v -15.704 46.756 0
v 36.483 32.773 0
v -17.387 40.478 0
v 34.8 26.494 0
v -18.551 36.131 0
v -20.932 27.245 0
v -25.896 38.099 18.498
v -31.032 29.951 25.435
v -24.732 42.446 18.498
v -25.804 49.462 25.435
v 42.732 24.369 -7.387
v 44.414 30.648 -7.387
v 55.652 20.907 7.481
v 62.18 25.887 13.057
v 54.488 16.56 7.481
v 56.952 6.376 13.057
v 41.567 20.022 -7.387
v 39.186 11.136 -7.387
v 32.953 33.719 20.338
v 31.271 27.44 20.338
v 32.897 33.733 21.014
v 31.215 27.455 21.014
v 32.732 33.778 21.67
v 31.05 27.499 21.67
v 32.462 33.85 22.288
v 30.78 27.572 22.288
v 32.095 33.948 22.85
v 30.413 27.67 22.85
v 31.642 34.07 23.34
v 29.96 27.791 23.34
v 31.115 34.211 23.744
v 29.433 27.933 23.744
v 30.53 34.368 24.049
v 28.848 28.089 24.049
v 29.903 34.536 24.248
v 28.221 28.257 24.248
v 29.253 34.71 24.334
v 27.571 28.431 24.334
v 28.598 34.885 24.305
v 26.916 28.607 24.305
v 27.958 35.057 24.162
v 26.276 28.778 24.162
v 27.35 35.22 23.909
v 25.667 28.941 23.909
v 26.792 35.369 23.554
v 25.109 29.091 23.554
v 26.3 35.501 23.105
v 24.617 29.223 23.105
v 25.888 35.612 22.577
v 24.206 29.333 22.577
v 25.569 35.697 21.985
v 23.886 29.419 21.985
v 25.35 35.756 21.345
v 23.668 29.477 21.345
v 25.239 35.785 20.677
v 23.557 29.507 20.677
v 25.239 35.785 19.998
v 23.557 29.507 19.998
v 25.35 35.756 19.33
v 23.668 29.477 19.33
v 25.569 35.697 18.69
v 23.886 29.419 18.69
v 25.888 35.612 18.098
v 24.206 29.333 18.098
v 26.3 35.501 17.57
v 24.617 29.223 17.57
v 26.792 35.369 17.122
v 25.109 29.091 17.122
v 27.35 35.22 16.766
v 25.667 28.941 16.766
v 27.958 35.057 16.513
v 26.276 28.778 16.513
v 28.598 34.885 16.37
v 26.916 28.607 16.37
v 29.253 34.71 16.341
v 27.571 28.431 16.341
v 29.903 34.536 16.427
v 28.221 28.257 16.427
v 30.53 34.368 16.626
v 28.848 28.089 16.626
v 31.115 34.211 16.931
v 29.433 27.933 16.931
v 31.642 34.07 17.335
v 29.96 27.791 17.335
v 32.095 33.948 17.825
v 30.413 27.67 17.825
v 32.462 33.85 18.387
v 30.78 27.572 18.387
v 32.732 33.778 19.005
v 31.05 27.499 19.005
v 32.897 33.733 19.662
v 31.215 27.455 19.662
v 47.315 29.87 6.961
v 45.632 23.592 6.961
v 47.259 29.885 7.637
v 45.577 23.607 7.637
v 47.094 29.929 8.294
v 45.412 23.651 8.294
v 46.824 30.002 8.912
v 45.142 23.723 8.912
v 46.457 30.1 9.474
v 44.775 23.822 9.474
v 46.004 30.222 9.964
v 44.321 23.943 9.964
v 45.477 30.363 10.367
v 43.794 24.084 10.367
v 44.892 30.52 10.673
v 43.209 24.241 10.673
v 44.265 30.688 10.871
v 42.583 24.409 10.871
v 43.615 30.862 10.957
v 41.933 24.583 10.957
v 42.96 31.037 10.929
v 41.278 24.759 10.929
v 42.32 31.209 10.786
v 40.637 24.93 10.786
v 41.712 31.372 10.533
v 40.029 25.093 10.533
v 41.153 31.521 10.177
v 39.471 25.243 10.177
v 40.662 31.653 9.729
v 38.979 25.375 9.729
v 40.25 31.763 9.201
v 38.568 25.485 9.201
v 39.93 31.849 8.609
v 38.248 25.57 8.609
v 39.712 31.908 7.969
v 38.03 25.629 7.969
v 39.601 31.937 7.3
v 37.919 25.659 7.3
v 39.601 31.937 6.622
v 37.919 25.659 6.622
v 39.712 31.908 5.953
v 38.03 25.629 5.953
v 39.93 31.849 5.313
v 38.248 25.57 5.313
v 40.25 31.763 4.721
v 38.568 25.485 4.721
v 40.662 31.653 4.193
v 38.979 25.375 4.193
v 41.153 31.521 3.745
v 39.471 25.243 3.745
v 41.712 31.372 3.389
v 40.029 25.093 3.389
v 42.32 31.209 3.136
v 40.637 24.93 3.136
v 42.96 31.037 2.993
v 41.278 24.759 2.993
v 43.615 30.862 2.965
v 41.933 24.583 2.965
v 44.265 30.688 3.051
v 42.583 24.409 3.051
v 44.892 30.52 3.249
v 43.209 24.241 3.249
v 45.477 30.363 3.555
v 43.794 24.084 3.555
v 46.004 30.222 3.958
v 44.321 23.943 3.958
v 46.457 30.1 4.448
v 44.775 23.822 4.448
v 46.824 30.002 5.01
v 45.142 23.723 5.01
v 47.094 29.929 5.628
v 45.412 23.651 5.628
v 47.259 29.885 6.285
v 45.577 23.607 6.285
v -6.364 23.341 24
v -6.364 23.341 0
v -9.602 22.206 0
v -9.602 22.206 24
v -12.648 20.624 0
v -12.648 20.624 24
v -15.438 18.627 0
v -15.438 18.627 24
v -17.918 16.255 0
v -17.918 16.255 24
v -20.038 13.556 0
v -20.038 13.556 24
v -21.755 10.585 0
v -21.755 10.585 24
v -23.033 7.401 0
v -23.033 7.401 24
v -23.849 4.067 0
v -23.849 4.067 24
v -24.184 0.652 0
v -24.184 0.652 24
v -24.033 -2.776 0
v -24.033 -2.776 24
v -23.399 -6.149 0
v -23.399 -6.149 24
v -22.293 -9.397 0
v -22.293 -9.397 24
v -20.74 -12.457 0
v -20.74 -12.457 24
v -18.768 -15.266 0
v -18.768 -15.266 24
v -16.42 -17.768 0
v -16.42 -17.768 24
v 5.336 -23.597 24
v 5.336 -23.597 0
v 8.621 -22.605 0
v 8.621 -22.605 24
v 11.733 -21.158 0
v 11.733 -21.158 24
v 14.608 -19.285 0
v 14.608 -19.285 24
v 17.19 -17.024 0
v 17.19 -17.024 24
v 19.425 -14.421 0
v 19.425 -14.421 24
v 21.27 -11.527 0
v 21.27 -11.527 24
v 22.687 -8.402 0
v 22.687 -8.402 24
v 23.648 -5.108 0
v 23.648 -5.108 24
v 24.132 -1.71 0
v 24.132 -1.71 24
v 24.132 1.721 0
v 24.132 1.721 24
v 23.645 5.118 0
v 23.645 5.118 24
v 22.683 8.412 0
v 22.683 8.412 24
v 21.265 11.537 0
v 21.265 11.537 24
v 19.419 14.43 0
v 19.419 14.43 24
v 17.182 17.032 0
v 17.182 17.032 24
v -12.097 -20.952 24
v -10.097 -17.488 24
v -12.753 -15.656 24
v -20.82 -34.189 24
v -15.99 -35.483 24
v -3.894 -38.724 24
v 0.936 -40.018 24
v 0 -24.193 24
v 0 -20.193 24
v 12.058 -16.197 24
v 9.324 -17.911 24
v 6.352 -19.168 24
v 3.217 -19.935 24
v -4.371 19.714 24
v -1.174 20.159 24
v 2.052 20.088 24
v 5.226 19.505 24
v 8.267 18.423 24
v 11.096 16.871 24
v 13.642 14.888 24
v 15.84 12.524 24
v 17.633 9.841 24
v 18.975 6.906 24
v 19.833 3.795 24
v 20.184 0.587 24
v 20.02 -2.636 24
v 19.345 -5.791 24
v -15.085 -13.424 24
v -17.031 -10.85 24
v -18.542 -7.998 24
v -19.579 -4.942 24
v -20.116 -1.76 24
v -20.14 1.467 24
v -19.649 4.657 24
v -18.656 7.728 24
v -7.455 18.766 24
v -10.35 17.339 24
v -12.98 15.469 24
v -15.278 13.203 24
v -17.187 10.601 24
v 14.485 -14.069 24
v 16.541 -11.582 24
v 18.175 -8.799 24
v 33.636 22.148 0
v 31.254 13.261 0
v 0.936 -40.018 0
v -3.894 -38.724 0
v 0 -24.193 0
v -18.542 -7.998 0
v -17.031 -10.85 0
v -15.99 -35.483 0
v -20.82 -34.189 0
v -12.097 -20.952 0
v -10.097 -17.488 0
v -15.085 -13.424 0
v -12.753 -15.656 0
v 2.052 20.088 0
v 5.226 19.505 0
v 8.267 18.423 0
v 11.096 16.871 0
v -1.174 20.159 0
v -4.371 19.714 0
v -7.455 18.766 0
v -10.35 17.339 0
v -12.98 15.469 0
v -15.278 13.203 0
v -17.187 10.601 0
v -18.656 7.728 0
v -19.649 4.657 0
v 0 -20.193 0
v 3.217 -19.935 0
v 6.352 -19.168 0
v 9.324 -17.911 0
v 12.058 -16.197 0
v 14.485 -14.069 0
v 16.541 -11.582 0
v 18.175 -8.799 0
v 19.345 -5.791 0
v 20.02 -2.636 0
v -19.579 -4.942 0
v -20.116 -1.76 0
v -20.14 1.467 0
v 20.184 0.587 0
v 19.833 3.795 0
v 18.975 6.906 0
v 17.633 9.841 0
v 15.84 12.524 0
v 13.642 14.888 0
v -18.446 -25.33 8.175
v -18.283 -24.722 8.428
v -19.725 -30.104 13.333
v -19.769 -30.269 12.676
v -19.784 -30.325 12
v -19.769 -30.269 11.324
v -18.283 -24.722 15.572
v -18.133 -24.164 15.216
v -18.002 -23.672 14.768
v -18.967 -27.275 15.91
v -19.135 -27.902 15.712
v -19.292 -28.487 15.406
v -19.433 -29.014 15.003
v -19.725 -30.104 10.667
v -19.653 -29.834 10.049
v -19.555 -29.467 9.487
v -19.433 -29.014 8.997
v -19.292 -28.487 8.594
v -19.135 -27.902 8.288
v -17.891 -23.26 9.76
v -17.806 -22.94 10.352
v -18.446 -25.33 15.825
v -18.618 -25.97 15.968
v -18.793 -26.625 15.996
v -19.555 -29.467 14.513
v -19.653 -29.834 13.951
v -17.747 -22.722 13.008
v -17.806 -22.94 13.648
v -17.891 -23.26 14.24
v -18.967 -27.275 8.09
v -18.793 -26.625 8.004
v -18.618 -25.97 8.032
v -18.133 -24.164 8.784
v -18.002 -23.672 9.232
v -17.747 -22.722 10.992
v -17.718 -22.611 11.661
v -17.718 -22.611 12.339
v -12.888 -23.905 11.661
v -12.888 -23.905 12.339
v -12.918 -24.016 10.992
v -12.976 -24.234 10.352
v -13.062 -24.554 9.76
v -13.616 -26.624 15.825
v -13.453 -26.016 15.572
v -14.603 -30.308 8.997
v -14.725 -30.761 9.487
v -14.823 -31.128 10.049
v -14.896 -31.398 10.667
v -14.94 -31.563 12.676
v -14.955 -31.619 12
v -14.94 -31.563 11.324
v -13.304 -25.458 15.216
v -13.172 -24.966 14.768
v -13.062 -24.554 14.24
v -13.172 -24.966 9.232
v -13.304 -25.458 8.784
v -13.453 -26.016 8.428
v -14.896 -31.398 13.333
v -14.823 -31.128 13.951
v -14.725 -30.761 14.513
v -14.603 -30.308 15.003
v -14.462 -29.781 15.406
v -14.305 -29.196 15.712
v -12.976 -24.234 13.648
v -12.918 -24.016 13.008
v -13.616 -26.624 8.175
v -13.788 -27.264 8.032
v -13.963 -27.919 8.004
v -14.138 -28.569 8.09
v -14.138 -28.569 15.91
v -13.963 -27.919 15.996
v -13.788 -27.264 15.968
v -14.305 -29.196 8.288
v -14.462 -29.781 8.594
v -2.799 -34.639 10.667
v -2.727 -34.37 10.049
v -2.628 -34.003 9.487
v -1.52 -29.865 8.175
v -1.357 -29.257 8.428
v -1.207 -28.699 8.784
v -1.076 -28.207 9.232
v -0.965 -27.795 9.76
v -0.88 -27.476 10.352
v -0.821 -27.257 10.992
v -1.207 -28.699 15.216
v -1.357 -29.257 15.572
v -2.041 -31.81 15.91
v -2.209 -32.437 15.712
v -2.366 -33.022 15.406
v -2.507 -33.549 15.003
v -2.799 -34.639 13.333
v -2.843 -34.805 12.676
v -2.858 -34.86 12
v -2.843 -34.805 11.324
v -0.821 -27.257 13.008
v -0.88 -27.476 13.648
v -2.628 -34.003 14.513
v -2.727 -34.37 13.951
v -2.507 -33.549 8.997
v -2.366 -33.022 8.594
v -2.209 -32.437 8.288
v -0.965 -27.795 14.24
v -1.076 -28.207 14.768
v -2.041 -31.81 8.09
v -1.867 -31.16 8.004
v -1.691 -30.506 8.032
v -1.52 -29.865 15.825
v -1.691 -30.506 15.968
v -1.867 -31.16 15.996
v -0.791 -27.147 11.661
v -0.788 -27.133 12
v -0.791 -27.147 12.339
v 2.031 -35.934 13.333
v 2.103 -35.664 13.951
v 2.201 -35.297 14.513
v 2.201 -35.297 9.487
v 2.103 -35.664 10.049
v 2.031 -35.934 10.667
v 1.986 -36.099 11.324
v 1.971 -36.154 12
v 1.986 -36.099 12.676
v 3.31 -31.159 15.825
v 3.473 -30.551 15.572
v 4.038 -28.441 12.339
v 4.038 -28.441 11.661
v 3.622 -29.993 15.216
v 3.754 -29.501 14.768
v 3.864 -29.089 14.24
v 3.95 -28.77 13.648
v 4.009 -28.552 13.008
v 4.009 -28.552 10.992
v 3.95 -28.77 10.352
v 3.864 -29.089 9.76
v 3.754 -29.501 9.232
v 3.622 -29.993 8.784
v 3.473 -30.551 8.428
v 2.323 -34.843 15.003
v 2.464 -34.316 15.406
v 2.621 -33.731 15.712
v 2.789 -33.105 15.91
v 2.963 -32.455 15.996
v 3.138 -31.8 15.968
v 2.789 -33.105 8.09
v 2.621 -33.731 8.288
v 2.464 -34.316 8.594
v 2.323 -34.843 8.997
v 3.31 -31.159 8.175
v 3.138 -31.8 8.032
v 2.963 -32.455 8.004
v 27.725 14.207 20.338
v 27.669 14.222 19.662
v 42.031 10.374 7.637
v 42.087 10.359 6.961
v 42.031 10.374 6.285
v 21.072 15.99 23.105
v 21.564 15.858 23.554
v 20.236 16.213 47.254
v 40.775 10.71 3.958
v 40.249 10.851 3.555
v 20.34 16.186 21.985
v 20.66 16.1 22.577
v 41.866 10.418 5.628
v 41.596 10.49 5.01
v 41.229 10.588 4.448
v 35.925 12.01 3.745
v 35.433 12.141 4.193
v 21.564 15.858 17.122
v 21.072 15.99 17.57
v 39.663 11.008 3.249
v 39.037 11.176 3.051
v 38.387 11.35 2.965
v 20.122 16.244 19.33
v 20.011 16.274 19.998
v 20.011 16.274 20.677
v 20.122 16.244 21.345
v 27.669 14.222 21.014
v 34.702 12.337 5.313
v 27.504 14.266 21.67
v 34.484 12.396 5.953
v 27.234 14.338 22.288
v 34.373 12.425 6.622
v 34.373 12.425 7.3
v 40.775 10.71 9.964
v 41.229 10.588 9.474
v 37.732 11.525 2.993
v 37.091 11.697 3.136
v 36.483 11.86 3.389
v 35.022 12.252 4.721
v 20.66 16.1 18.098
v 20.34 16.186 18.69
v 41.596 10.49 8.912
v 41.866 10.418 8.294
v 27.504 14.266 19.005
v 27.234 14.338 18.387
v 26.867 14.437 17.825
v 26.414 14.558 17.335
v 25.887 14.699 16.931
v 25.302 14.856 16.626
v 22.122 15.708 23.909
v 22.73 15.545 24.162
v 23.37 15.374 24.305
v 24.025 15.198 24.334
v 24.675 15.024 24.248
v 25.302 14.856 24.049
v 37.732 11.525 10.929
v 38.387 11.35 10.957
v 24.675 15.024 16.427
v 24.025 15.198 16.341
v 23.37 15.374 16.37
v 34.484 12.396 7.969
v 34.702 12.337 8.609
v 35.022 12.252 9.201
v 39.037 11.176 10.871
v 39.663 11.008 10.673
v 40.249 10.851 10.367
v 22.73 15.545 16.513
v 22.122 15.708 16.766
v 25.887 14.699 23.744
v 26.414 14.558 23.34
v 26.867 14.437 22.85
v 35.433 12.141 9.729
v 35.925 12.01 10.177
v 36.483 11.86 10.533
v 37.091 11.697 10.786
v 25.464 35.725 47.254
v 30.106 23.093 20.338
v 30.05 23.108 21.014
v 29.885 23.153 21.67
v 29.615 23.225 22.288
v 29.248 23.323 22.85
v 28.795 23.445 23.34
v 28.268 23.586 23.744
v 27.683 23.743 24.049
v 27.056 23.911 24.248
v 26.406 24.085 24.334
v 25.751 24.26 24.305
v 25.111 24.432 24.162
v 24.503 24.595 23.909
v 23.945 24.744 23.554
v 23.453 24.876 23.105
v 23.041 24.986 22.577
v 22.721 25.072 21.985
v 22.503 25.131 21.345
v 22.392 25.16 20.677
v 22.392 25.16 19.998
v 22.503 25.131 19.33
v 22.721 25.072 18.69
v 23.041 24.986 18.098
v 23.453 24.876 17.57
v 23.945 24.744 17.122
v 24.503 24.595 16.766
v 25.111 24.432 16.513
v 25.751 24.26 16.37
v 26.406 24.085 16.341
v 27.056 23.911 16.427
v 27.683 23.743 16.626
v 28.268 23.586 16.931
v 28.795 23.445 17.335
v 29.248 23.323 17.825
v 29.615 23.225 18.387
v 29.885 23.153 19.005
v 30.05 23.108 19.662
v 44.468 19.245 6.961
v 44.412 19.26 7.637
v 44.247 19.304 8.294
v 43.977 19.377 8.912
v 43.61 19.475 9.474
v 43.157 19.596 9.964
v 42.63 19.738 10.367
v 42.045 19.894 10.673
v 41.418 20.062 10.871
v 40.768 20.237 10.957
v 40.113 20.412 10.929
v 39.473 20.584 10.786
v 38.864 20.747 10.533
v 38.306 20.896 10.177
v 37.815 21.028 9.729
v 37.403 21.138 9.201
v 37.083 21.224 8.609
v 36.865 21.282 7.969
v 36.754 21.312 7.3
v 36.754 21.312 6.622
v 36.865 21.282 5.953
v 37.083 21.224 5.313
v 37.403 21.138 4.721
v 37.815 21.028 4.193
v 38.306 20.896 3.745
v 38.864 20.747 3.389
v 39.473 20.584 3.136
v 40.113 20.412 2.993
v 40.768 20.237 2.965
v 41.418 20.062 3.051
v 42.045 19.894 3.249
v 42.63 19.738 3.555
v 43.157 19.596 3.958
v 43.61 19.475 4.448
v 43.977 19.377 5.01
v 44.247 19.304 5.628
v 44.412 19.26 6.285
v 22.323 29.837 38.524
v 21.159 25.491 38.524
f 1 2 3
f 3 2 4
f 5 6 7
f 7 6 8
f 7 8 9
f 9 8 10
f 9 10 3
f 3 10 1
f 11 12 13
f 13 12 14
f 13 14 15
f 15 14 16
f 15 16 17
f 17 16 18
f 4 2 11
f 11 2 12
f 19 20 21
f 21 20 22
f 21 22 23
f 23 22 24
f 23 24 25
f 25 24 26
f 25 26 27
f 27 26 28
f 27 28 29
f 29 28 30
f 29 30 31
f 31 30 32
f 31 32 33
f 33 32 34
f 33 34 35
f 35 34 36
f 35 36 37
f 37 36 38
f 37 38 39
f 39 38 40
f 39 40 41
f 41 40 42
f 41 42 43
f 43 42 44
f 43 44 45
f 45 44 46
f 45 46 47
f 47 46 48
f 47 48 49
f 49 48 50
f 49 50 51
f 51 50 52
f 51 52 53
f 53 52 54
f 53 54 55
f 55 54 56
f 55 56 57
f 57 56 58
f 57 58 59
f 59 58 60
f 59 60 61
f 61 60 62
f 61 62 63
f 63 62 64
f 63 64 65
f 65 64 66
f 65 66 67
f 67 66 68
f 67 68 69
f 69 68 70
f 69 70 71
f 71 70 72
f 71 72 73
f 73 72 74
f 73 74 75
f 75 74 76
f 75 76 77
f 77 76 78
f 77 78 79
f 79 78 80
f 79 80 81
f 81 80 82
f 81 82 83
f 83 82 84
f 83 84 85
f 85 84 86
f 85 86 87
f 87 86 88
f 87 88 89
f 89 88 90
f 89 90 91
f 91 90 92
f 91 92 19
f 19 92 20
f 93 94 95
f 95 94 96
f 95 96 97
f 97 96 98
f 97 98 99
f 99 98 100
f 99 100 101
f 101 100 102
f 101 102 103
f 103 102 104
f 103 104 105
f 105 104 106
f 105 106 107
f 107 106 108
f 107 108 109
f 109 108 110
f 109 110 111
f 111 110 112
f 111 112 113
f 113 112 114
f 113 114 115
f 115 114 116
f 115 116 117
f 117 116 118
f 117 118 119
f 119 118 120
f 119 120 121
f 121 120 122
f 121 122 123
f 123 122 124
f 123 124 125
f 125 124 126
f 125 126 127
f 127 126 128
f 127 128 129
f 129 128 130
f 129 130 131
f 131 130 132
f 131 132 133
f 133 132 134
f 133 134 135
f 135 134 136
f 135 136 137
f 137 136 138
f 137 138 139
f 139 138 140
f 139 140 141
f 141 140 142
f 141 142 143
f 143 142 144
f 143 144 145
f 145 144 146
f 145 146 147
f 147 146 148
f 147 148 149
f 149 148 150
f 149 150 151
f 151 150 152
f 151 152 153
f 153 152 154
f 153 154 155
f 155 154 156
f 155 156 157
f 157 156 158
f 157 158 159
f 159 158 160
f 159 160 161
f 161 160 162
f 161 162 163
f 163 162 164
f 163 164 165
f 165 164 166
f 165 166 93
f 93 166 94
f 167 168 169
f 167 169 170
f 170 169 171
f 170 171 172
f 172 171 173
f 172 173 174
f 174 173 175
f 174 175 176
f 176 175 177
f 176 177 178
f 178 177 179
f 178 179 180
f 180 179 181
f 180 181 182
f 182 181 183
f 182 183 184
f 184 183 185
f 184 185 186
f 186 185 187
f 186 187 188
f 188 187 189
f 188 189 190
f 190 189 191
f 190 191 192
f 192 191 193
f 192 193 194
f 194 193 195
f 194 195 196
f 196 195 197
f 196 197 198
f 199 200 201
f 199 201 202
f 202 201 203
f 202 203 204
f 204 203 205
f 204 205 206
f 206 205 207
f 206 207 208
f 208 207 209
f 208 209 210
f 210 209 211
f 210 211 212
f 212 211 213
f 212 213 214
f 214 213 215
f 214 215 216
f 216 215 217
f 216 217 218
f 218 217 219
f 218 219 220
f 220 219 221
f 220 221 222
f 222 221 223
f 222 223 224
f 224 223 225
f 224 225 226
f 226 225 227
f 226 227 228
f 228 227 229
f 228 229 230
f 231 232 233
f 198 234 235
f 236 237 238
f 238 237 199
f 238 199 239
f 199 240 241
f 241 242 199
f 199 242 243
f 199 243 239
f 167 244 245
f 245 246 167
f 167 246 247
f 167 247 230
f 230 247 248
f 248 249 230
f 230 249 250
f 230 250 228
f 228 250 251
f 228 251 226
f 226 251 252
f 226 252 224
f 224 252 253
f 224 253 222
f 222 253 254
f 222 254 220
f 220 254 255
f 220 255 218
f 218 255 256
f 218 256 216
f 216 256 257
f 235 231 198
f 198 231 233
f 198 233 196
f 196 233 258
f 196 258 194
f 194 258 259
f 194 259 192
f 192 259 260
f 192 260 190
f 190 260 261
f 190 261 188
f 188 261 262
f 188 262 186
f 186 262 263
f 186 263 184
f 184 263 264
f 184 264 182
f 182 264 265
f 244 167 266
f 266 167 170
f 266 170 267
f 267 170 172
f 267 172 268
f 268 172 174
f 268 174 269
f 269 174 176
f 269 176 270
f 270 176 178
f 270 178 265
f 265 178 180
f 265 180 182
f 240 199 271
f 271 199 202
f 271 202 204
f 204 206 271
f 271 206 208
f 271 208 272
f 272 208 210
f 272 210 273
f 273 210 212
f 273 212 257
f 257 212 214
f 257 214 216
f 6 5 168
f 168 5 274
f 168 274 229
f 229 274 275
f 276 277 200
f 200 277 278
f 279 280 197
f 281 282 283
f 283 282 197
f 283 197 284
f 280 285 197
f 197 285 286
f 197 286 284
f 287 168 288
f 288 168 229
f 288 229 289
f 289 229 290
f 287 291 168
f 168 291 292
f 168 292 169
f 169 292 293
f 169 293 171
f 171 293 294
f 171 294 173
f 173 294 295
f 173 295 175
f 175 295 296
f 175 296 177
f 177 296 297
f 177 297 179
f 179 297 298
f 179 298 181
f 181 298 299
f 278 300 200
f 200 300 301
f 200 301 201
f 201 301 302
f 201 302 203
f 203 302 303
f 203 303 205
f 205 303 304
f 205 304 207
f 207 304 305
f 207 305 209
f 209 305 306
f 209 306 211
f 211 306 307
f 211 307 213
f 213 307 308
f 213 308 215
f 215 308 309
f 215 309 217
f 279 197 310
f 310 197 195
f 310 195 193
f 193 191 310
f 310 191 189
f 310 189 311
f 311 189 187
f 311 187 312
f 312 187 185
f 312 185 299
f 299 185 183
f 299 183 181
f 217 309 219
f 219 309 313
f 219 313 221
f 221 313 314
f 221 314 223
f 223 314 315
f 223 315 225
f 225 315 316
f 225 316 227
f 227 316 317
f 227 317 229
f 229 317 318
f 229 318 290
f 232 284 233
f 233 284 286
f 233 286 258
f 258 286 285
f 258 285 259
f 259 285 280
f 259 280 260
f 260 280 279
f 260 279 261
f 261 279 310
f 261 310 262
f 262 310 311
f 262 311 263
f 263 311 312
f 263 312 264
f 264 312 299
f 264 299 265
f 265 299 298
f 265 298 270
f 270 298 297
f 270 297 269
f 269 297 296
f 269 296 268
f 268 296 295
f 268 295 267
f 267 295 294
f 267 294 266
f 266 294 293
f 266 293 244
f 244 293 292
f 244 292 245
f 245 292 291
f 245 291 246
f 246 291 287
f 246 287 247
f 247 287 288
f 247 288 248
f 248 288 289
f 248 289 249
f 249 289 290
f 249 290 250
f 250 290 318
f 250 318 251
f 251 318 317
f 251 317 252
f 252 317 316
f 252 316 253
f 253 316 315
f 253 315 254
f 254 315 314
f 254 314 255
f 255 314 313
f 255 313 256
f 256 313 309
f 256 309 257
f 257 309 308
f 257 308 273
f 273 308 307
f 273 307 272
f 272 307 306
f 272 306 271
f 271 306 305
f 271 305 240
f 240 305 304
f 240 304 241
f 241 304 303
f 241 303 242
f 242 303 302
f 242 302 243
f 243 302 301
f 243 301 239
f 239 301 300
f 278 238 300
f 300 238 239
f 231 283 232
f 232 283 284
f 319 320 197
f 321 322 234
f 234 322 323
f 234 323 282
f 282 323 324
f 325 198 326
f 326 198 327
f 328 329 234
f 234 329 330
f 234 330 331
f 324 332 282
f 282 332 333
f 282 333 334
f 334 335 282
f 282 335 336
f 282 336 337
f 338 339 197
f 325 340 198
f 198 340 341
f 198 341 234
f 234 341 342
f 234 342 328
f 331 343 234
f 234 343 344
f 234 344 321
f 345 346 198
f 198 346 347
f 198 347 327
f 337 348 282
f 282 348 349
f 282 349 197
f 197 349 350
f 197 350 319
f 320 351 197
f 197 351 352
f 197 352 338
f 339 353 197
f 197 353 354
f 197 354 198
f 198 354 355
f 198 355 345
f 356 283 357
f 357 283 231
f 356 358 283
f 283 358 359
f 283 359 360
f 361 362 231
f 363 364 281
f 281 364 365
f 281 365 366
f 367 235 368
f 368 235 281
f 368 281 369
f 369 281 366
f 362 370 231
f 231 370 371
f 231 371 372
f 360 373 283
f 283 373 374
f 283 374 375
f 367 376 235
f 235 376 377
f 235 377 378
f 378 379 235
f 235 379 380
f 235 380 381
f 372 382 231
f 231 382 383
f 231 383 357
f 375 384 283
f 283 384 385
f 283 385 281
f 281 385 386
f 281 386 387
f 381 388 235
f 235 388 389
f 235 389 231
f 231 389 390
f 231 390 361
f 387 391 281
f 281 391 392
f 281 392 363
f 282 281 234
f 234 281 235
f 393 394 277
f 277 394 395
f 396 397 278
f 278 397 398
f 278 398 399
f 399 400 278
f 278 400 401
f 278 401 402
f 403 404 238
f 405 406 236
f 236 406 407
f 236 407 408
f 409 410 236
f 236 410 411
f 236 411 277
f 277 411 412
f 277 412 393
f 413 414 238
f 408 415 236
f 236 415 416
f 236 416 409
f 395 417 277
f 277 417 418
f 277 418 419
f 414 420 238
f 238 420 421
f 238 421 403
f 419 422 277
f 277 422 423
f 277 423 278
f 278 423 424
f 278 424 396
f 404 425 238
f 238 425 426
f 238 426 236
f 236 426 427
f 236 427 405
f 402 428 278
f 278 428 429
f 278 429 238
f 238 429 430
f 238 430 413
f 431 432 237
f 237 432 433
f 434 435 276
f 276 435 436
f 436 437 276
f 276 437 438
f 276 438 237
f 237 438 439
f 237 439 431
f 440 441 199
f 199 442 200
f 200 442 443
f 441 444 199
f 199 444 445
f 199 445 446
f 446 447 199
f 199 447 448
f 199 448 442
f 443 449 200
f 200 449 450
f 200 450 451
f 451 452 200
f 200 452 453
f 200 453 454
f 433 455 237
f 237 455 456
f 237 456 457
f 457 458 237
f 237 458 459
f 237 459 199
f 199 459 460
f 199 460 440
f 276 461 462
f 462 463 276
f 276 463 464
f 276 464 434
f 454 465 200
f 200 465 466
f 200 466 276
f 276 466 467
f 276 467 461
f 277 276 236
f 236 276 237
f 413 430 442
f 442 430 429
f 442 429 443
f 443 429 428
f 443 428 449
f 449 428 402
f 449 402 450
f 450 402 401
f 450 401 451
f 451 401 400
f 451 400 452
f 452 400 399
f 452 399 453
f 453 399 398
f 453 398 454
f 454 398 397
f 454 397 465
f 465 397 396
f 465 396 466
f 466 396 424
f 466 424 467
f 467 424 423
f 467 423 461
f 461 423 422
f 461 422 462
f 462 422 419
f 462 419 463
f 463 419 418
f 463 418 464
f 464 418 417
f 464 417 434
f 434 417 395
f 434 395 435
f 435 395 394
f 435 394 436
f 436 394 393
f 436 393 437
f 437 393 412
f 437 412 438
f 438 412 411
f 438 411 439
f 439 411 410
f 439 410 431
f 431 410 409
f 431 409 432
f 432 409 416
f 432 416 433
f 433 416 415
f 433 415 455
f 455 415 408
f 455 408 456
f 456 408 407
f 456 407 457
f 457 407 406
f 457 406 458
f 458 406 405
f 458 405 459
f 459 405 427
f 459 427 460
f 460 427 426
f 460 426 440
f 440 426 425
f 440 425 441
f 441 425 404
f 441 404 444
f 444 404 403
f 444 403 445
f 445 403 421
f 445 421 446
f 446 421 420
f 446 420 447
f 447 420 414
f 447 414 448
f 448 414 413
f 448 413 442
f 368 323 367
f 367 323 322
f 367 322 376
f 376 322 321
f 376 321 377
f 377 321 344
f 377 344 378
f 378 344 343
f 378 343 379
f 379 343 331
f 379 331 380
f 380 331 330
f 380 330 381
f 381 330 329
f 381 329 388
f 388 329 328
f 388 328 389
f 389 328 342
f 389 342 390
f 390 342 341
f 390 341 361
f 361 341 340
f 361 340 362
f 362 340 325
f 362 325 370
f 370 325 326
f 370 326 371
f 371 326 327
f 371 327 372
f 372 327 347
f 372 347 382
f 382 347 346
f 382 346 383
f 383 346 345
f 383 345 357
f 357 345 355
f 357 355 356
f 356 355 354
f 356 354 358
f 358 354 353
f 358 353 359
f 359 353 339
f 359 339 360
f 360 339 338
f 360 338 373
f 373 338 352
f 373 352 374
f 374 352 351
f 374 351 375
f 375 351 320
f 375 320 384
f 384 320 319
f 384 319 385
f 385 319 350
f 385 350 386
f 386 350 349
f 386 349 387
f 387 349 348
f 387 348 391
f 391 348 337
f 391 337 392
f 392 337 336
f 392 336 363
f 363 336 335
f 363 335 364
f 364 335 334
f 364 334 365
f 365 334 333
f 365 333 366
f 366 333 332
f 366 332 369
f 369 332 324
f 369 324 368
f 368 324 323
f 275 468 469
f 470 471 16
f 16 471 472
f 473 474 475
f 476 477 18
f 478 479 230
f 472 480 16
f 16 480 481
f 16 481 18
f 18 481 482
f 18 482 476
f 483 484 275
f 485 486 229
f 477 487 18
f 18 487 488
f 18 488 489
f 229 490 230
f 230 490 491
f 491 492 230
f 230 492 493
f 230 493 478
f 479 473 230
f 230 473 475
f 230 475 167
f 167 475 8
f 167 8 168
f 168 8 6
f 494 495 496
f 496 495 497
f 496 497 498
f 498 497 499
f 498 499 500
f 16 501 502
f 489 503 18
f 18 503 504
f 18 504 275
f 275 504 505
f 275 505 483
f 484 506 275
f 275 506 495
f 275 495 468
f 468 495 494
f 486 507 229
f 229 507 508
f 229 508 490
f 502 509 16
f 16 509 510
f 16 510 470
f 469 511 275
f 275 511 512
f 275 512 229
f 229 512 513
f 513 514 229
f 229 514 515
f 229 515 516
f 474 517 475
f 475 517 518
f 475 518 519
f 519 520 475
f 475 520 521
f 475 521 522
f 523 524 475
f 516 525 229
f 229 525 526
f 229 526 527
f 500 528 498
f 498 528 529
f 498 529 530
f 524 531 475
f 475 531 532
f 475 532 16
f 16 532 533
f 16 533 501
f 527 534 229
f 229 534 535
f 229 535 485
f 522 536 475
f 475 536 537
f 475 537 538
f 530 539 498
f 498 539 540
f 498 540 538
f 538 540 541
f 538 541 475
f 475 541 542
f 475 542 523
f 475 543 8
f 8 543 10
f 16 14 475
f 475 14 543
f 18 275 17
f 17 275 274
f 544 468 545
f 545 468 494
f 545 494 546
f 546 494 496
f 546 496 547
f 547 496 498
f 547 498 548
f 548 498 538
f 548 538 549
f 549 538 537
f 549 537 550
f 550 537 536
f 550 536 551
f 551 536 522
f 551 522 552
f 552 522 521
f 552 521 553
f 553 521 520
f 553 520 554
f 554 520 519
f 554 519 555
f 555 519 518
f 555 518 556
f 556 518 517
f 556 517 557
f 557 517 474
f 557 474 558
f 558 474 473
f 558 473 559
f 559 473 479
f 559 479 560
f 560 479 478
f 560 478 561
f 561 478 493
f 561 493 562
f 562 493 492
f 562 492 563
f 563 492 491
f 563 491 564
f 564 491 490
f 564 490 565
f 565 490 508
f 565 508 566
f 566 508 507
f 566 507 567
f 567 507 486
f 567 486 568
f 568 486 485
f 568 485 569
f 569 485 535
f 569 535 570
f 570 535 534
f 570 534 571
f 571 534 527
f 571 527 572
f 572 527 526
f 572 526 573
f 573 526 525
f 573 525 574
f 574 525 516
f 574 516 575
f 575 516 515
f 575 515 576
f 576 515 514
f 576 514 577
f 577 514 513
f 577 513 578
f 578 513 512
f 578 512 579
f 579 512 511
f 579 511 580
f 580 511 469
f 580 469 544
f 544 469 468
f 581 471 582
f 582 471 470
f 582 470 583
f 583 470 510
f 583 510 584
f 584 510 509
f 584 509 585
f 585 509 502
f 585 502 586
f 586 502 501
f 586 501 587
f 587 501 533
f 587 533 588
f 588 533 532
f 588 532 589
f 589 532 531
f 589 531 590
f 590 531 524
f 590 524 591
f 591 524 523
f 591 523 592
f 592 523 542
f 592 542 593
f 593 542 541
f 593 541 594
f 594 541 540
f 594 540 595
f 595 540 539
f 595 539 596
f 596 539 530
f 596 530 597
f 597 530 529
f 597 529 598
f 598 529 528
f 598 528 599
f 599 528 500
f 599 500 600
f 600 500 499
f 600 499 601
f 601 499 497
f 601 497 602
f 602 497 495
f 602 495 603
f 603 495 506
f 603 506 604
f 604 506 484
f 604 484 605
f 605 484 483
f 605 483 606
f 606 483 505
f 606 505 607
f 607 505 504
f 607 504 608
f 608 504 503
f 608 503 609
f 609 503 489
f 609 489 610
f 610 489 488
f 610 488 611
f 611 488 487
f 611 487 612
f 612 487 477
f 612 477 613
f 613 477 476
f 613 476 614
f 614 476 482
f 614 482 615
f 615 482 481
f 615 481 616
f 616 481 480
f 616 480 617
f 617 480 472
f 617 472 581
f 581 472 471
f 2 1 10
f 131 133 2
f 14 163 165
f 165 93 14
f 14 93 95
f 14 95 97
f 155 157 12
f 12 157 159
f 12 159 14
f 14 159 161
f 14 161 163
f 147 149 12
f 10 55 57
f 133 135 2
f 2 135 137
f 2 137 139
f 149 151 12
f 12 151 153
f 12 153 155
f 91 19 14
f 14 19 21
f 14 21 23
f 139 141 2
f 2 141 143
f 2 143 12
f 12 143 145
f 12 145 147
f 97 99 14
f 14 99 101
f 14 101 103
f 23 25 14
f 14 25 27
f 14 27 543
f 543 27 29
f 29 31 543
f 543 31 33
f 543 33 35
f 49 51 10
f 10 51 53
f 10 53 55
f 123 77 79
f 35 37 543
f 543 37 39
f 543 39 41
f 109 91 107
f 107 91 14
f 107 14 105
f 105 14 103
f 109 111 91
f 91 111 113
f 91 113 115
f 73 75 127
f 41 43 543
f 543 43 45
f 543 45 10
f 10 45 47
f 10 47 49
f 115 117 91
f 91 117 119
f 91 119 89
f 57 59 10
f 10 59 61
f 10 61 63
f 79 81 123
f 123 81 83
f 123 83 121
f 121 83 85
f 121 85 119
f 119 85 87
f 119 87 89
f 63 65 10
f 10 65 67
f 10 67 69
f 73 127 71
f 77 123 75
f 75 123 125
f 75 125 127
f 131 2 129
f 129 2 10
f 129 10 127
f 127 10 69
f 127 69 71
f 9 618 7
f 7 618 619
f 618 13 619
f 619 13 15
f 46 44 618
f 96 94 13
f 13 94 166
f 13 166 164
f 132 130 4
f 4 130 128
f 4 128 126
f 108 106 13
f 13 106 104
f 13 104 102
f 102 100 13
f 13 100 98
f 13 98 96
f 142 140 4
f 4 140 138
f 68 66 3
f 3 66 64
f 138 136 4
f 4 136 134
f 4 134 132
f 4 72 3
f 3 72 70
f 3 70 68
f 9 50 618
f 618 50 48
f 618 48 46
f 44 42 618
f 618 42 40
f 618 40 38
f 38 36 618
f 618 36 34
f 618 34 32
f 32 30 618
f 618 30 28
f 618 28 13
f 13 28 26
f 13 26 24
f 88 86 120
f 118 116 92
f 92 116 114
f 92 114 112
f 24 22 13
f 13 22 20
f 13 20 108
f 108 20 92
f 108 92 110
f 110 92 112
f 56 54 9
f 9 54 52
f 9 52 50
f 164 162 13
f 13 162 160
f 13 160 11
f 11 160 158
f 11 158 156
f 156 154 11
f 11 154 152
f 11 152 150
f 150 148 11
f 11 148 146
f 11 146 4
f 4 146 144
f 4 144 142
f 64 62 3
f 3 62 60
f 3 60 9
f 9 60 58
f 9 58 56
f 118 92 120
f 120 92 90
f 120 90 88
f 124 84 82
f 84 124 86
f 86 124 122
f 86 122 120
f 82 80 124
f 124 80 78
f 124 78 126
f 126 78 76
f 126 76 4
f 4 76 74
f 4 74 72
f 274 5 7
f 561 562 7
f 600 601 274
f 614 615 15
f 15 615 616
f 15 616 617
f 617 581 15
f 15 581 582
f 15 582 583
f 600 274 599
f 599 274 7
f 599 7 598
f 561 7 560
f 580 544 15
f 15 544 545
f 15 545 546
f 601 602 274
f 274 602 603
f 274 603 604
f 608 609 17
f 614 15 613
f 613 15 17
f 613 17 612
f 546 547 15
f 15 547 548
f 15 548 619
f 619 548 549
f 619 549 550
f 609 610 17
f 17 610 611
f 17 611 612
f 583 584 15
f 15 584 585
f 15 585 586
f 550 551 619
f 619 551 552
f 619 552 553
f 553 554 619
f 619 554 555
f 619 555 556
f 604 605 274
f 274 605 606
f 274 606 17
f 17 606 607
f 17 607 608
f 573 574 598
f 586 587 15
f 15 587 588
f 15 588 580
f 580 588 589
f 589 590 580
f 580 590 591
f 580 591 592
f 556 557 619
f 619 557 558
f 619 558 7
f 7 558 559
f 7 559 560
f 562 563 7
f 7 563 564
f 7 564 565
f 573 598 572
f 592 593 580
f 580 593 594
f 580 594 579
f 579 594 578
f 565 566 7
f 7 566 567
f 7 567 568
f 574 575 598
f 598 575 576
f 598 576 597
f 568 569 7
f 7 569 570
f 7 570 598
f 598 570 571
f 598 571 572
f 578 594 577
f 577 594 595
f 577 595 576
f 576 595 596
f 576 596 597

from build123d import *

# Parameters (mm, degrees)
SKETCH1_R                = 24.193
SKETCH1_R_2              = 20.193
BOSS_EXTRUDE1_DEPTH      = 24
CUT_EXTRUDE1_DEPTH       = 24
BOSS_EXTRUDE2_START      = -24
BOSS_EXTRUDE2_DEPTH      = 24
CUT_EXTRUDE2_DEPTH       = 24
BOSS_EXTRUDE3_DEPTH      = 9.2
BOSS_EXTRUDE3_DEPTH_BACK = 11
SKETCH6_R                = 4
CUT_EXTRUDE4_START       = -4.5
SKETCH6_5_R              = 4
CUT_EXTRUDE4_DEPTH       = 4.5


with BuildPart() as part:
    # Sketch1 → Boss-Extrude1 (new body)
    with BuildSketch(Plane.XY):
        Circle(SKETCH1_R)
        Circle(SKETCH1_R_2, mode=Mode.SUBTRACT)
    extrude(amount=BOSS_EXTRUDE1_DEPTH)

    # Sketch2 → Cut-Extrude1 (cut)
    with BuildSketch(Plane.XY.offset(24)):
        Polygon((0, -24.193), (-5.8341998, -24.895299835), (-12.0965, -20.951752594), (0, 0), align=None)
    extrude(amount=-CUT_EXTRUDE1_DEPTH, mode=Mode.SUBTRACT)

    # Sketch3 → Boss-Extrude2 (add)
    with BuildSketch(Plane.XY.offset(24).offset(BOSS_EXTRUDE2_START)):
        with BuildLine():
            Line((-15.990029306, -35.482601784), (-12.0965, -20.951752594))
            ThreePointArc((-12.0965, -20.951752594), (-14.346719144, -19.480064138), (-16.419734671, -17.767767512))
            Line((-16.419734671, -17.767767512), (-20.819658437, -34.188506559))
            Line((-20.819658437, -34.188506559), (-15.990029306, -35.482601784))
        make_face()
        with BuildLine():
            ThreePointArc((5.336023592, -23.597205369), (2.684591171, -24.043589982), (0, -24.193))
            Line((0, -24.193), (-3.893529306, -38.72384919))
            Line((-3.893529306, -38.72384919), (0.936099826, -40.017944416))
            Line((0.936099826, -40.017944416), (5.336023592, -23.597205369))
        make_face()
    extrude(amount=BOSS_EXTRUDE2_DEPTH)

    # Sketch4 → Cut-Extrude2 (cut)
    with BuildSketch(Plane(origin=(-10.877879131, 2.914718929, 0), x_dir=(0, 0, 1), z_dir=(-0.9659258262890682, 0.2588190451025212, 0))):
        with BuildLine():
            ThreePointArc((12, -34.412085563), (14.828427125, -33.240512688), (16, -30.412085563))
            ThreePointArc((16, -30.412085563), (9.171572875, -27.583658439), (12, -34.412085563))
        make_face()
    extrude(amount=-CUT_EXTRUDE2_DEPTH, mode=Mode.SUBTRACT)

    # Sketch6 → Boss-Extrude3 (add, two sides: drawn at the far end of the back side and taken through both)
    with BuildSketch(Plane(origin=(7.790062397, 29.072908658, 0), x_dir=(0.9659258262890688, -0.2588190451025194, 0), z_dir=(-0.2588190451025194, -0.9659258262890688, 0)).offset(-BOSS_EXTRUDE3_DEPTH_BACK)):
        Polygon((-27.270593421, 0), (26.757277212, 0), (34.96828798, -7.387146438), (53.361016662, 13.056863238), (15.35042048, 47.253608089), (-37.726339728, 25.434766937), align=None)
        with Locations((33.971441151, 6.96105325)):
            Circle(SKETCH6_R, mode=Mode.SUBTRACT)
        with Locations((19.103070478, 20.337583201)):
            Circle(SKETCH6_R, mode=Mode.SUBTRACT)
    extrude(amount=BOSS_EXTRUDE3_DEPTH + BOSS_EXTRUDE3_DEPTH_BACK)

    # Sketch6<5> → Cut-Extrude4 (cut)
    with BuildSketch(Plane(origin=(7.790062397, 29.072908658, 0), x_dir=(0.9659258262890688, -0.2588190451025194, 0), z_dir=(-0.2588190451025194, -0.9659258262890688, 0)).offset(CUT_EXTRUDE4_START)):
        Polygon((-34.874772554, 18.498012318), (-27.270593421, 0), (26.757277212, 0), (34.96828798, -7.387146438), (48.34481793, 7.481224235), (13.840171432, 38.52379423), align=None)
        with Locations((33.971441151, 6.96105325)):
            Circle(SKETCH6_5_R, mode=Mode.SUBTRACT)
        with Locations((19.103070478, 20.337583201)):
            Circle(SKETCH6_5_R, mode=Mode.SUBTRACT)
    extrude(amount=CUT_EXTRUDE4_DEPTH, mode=Mode.SUBTRACT)


solid = part.part
